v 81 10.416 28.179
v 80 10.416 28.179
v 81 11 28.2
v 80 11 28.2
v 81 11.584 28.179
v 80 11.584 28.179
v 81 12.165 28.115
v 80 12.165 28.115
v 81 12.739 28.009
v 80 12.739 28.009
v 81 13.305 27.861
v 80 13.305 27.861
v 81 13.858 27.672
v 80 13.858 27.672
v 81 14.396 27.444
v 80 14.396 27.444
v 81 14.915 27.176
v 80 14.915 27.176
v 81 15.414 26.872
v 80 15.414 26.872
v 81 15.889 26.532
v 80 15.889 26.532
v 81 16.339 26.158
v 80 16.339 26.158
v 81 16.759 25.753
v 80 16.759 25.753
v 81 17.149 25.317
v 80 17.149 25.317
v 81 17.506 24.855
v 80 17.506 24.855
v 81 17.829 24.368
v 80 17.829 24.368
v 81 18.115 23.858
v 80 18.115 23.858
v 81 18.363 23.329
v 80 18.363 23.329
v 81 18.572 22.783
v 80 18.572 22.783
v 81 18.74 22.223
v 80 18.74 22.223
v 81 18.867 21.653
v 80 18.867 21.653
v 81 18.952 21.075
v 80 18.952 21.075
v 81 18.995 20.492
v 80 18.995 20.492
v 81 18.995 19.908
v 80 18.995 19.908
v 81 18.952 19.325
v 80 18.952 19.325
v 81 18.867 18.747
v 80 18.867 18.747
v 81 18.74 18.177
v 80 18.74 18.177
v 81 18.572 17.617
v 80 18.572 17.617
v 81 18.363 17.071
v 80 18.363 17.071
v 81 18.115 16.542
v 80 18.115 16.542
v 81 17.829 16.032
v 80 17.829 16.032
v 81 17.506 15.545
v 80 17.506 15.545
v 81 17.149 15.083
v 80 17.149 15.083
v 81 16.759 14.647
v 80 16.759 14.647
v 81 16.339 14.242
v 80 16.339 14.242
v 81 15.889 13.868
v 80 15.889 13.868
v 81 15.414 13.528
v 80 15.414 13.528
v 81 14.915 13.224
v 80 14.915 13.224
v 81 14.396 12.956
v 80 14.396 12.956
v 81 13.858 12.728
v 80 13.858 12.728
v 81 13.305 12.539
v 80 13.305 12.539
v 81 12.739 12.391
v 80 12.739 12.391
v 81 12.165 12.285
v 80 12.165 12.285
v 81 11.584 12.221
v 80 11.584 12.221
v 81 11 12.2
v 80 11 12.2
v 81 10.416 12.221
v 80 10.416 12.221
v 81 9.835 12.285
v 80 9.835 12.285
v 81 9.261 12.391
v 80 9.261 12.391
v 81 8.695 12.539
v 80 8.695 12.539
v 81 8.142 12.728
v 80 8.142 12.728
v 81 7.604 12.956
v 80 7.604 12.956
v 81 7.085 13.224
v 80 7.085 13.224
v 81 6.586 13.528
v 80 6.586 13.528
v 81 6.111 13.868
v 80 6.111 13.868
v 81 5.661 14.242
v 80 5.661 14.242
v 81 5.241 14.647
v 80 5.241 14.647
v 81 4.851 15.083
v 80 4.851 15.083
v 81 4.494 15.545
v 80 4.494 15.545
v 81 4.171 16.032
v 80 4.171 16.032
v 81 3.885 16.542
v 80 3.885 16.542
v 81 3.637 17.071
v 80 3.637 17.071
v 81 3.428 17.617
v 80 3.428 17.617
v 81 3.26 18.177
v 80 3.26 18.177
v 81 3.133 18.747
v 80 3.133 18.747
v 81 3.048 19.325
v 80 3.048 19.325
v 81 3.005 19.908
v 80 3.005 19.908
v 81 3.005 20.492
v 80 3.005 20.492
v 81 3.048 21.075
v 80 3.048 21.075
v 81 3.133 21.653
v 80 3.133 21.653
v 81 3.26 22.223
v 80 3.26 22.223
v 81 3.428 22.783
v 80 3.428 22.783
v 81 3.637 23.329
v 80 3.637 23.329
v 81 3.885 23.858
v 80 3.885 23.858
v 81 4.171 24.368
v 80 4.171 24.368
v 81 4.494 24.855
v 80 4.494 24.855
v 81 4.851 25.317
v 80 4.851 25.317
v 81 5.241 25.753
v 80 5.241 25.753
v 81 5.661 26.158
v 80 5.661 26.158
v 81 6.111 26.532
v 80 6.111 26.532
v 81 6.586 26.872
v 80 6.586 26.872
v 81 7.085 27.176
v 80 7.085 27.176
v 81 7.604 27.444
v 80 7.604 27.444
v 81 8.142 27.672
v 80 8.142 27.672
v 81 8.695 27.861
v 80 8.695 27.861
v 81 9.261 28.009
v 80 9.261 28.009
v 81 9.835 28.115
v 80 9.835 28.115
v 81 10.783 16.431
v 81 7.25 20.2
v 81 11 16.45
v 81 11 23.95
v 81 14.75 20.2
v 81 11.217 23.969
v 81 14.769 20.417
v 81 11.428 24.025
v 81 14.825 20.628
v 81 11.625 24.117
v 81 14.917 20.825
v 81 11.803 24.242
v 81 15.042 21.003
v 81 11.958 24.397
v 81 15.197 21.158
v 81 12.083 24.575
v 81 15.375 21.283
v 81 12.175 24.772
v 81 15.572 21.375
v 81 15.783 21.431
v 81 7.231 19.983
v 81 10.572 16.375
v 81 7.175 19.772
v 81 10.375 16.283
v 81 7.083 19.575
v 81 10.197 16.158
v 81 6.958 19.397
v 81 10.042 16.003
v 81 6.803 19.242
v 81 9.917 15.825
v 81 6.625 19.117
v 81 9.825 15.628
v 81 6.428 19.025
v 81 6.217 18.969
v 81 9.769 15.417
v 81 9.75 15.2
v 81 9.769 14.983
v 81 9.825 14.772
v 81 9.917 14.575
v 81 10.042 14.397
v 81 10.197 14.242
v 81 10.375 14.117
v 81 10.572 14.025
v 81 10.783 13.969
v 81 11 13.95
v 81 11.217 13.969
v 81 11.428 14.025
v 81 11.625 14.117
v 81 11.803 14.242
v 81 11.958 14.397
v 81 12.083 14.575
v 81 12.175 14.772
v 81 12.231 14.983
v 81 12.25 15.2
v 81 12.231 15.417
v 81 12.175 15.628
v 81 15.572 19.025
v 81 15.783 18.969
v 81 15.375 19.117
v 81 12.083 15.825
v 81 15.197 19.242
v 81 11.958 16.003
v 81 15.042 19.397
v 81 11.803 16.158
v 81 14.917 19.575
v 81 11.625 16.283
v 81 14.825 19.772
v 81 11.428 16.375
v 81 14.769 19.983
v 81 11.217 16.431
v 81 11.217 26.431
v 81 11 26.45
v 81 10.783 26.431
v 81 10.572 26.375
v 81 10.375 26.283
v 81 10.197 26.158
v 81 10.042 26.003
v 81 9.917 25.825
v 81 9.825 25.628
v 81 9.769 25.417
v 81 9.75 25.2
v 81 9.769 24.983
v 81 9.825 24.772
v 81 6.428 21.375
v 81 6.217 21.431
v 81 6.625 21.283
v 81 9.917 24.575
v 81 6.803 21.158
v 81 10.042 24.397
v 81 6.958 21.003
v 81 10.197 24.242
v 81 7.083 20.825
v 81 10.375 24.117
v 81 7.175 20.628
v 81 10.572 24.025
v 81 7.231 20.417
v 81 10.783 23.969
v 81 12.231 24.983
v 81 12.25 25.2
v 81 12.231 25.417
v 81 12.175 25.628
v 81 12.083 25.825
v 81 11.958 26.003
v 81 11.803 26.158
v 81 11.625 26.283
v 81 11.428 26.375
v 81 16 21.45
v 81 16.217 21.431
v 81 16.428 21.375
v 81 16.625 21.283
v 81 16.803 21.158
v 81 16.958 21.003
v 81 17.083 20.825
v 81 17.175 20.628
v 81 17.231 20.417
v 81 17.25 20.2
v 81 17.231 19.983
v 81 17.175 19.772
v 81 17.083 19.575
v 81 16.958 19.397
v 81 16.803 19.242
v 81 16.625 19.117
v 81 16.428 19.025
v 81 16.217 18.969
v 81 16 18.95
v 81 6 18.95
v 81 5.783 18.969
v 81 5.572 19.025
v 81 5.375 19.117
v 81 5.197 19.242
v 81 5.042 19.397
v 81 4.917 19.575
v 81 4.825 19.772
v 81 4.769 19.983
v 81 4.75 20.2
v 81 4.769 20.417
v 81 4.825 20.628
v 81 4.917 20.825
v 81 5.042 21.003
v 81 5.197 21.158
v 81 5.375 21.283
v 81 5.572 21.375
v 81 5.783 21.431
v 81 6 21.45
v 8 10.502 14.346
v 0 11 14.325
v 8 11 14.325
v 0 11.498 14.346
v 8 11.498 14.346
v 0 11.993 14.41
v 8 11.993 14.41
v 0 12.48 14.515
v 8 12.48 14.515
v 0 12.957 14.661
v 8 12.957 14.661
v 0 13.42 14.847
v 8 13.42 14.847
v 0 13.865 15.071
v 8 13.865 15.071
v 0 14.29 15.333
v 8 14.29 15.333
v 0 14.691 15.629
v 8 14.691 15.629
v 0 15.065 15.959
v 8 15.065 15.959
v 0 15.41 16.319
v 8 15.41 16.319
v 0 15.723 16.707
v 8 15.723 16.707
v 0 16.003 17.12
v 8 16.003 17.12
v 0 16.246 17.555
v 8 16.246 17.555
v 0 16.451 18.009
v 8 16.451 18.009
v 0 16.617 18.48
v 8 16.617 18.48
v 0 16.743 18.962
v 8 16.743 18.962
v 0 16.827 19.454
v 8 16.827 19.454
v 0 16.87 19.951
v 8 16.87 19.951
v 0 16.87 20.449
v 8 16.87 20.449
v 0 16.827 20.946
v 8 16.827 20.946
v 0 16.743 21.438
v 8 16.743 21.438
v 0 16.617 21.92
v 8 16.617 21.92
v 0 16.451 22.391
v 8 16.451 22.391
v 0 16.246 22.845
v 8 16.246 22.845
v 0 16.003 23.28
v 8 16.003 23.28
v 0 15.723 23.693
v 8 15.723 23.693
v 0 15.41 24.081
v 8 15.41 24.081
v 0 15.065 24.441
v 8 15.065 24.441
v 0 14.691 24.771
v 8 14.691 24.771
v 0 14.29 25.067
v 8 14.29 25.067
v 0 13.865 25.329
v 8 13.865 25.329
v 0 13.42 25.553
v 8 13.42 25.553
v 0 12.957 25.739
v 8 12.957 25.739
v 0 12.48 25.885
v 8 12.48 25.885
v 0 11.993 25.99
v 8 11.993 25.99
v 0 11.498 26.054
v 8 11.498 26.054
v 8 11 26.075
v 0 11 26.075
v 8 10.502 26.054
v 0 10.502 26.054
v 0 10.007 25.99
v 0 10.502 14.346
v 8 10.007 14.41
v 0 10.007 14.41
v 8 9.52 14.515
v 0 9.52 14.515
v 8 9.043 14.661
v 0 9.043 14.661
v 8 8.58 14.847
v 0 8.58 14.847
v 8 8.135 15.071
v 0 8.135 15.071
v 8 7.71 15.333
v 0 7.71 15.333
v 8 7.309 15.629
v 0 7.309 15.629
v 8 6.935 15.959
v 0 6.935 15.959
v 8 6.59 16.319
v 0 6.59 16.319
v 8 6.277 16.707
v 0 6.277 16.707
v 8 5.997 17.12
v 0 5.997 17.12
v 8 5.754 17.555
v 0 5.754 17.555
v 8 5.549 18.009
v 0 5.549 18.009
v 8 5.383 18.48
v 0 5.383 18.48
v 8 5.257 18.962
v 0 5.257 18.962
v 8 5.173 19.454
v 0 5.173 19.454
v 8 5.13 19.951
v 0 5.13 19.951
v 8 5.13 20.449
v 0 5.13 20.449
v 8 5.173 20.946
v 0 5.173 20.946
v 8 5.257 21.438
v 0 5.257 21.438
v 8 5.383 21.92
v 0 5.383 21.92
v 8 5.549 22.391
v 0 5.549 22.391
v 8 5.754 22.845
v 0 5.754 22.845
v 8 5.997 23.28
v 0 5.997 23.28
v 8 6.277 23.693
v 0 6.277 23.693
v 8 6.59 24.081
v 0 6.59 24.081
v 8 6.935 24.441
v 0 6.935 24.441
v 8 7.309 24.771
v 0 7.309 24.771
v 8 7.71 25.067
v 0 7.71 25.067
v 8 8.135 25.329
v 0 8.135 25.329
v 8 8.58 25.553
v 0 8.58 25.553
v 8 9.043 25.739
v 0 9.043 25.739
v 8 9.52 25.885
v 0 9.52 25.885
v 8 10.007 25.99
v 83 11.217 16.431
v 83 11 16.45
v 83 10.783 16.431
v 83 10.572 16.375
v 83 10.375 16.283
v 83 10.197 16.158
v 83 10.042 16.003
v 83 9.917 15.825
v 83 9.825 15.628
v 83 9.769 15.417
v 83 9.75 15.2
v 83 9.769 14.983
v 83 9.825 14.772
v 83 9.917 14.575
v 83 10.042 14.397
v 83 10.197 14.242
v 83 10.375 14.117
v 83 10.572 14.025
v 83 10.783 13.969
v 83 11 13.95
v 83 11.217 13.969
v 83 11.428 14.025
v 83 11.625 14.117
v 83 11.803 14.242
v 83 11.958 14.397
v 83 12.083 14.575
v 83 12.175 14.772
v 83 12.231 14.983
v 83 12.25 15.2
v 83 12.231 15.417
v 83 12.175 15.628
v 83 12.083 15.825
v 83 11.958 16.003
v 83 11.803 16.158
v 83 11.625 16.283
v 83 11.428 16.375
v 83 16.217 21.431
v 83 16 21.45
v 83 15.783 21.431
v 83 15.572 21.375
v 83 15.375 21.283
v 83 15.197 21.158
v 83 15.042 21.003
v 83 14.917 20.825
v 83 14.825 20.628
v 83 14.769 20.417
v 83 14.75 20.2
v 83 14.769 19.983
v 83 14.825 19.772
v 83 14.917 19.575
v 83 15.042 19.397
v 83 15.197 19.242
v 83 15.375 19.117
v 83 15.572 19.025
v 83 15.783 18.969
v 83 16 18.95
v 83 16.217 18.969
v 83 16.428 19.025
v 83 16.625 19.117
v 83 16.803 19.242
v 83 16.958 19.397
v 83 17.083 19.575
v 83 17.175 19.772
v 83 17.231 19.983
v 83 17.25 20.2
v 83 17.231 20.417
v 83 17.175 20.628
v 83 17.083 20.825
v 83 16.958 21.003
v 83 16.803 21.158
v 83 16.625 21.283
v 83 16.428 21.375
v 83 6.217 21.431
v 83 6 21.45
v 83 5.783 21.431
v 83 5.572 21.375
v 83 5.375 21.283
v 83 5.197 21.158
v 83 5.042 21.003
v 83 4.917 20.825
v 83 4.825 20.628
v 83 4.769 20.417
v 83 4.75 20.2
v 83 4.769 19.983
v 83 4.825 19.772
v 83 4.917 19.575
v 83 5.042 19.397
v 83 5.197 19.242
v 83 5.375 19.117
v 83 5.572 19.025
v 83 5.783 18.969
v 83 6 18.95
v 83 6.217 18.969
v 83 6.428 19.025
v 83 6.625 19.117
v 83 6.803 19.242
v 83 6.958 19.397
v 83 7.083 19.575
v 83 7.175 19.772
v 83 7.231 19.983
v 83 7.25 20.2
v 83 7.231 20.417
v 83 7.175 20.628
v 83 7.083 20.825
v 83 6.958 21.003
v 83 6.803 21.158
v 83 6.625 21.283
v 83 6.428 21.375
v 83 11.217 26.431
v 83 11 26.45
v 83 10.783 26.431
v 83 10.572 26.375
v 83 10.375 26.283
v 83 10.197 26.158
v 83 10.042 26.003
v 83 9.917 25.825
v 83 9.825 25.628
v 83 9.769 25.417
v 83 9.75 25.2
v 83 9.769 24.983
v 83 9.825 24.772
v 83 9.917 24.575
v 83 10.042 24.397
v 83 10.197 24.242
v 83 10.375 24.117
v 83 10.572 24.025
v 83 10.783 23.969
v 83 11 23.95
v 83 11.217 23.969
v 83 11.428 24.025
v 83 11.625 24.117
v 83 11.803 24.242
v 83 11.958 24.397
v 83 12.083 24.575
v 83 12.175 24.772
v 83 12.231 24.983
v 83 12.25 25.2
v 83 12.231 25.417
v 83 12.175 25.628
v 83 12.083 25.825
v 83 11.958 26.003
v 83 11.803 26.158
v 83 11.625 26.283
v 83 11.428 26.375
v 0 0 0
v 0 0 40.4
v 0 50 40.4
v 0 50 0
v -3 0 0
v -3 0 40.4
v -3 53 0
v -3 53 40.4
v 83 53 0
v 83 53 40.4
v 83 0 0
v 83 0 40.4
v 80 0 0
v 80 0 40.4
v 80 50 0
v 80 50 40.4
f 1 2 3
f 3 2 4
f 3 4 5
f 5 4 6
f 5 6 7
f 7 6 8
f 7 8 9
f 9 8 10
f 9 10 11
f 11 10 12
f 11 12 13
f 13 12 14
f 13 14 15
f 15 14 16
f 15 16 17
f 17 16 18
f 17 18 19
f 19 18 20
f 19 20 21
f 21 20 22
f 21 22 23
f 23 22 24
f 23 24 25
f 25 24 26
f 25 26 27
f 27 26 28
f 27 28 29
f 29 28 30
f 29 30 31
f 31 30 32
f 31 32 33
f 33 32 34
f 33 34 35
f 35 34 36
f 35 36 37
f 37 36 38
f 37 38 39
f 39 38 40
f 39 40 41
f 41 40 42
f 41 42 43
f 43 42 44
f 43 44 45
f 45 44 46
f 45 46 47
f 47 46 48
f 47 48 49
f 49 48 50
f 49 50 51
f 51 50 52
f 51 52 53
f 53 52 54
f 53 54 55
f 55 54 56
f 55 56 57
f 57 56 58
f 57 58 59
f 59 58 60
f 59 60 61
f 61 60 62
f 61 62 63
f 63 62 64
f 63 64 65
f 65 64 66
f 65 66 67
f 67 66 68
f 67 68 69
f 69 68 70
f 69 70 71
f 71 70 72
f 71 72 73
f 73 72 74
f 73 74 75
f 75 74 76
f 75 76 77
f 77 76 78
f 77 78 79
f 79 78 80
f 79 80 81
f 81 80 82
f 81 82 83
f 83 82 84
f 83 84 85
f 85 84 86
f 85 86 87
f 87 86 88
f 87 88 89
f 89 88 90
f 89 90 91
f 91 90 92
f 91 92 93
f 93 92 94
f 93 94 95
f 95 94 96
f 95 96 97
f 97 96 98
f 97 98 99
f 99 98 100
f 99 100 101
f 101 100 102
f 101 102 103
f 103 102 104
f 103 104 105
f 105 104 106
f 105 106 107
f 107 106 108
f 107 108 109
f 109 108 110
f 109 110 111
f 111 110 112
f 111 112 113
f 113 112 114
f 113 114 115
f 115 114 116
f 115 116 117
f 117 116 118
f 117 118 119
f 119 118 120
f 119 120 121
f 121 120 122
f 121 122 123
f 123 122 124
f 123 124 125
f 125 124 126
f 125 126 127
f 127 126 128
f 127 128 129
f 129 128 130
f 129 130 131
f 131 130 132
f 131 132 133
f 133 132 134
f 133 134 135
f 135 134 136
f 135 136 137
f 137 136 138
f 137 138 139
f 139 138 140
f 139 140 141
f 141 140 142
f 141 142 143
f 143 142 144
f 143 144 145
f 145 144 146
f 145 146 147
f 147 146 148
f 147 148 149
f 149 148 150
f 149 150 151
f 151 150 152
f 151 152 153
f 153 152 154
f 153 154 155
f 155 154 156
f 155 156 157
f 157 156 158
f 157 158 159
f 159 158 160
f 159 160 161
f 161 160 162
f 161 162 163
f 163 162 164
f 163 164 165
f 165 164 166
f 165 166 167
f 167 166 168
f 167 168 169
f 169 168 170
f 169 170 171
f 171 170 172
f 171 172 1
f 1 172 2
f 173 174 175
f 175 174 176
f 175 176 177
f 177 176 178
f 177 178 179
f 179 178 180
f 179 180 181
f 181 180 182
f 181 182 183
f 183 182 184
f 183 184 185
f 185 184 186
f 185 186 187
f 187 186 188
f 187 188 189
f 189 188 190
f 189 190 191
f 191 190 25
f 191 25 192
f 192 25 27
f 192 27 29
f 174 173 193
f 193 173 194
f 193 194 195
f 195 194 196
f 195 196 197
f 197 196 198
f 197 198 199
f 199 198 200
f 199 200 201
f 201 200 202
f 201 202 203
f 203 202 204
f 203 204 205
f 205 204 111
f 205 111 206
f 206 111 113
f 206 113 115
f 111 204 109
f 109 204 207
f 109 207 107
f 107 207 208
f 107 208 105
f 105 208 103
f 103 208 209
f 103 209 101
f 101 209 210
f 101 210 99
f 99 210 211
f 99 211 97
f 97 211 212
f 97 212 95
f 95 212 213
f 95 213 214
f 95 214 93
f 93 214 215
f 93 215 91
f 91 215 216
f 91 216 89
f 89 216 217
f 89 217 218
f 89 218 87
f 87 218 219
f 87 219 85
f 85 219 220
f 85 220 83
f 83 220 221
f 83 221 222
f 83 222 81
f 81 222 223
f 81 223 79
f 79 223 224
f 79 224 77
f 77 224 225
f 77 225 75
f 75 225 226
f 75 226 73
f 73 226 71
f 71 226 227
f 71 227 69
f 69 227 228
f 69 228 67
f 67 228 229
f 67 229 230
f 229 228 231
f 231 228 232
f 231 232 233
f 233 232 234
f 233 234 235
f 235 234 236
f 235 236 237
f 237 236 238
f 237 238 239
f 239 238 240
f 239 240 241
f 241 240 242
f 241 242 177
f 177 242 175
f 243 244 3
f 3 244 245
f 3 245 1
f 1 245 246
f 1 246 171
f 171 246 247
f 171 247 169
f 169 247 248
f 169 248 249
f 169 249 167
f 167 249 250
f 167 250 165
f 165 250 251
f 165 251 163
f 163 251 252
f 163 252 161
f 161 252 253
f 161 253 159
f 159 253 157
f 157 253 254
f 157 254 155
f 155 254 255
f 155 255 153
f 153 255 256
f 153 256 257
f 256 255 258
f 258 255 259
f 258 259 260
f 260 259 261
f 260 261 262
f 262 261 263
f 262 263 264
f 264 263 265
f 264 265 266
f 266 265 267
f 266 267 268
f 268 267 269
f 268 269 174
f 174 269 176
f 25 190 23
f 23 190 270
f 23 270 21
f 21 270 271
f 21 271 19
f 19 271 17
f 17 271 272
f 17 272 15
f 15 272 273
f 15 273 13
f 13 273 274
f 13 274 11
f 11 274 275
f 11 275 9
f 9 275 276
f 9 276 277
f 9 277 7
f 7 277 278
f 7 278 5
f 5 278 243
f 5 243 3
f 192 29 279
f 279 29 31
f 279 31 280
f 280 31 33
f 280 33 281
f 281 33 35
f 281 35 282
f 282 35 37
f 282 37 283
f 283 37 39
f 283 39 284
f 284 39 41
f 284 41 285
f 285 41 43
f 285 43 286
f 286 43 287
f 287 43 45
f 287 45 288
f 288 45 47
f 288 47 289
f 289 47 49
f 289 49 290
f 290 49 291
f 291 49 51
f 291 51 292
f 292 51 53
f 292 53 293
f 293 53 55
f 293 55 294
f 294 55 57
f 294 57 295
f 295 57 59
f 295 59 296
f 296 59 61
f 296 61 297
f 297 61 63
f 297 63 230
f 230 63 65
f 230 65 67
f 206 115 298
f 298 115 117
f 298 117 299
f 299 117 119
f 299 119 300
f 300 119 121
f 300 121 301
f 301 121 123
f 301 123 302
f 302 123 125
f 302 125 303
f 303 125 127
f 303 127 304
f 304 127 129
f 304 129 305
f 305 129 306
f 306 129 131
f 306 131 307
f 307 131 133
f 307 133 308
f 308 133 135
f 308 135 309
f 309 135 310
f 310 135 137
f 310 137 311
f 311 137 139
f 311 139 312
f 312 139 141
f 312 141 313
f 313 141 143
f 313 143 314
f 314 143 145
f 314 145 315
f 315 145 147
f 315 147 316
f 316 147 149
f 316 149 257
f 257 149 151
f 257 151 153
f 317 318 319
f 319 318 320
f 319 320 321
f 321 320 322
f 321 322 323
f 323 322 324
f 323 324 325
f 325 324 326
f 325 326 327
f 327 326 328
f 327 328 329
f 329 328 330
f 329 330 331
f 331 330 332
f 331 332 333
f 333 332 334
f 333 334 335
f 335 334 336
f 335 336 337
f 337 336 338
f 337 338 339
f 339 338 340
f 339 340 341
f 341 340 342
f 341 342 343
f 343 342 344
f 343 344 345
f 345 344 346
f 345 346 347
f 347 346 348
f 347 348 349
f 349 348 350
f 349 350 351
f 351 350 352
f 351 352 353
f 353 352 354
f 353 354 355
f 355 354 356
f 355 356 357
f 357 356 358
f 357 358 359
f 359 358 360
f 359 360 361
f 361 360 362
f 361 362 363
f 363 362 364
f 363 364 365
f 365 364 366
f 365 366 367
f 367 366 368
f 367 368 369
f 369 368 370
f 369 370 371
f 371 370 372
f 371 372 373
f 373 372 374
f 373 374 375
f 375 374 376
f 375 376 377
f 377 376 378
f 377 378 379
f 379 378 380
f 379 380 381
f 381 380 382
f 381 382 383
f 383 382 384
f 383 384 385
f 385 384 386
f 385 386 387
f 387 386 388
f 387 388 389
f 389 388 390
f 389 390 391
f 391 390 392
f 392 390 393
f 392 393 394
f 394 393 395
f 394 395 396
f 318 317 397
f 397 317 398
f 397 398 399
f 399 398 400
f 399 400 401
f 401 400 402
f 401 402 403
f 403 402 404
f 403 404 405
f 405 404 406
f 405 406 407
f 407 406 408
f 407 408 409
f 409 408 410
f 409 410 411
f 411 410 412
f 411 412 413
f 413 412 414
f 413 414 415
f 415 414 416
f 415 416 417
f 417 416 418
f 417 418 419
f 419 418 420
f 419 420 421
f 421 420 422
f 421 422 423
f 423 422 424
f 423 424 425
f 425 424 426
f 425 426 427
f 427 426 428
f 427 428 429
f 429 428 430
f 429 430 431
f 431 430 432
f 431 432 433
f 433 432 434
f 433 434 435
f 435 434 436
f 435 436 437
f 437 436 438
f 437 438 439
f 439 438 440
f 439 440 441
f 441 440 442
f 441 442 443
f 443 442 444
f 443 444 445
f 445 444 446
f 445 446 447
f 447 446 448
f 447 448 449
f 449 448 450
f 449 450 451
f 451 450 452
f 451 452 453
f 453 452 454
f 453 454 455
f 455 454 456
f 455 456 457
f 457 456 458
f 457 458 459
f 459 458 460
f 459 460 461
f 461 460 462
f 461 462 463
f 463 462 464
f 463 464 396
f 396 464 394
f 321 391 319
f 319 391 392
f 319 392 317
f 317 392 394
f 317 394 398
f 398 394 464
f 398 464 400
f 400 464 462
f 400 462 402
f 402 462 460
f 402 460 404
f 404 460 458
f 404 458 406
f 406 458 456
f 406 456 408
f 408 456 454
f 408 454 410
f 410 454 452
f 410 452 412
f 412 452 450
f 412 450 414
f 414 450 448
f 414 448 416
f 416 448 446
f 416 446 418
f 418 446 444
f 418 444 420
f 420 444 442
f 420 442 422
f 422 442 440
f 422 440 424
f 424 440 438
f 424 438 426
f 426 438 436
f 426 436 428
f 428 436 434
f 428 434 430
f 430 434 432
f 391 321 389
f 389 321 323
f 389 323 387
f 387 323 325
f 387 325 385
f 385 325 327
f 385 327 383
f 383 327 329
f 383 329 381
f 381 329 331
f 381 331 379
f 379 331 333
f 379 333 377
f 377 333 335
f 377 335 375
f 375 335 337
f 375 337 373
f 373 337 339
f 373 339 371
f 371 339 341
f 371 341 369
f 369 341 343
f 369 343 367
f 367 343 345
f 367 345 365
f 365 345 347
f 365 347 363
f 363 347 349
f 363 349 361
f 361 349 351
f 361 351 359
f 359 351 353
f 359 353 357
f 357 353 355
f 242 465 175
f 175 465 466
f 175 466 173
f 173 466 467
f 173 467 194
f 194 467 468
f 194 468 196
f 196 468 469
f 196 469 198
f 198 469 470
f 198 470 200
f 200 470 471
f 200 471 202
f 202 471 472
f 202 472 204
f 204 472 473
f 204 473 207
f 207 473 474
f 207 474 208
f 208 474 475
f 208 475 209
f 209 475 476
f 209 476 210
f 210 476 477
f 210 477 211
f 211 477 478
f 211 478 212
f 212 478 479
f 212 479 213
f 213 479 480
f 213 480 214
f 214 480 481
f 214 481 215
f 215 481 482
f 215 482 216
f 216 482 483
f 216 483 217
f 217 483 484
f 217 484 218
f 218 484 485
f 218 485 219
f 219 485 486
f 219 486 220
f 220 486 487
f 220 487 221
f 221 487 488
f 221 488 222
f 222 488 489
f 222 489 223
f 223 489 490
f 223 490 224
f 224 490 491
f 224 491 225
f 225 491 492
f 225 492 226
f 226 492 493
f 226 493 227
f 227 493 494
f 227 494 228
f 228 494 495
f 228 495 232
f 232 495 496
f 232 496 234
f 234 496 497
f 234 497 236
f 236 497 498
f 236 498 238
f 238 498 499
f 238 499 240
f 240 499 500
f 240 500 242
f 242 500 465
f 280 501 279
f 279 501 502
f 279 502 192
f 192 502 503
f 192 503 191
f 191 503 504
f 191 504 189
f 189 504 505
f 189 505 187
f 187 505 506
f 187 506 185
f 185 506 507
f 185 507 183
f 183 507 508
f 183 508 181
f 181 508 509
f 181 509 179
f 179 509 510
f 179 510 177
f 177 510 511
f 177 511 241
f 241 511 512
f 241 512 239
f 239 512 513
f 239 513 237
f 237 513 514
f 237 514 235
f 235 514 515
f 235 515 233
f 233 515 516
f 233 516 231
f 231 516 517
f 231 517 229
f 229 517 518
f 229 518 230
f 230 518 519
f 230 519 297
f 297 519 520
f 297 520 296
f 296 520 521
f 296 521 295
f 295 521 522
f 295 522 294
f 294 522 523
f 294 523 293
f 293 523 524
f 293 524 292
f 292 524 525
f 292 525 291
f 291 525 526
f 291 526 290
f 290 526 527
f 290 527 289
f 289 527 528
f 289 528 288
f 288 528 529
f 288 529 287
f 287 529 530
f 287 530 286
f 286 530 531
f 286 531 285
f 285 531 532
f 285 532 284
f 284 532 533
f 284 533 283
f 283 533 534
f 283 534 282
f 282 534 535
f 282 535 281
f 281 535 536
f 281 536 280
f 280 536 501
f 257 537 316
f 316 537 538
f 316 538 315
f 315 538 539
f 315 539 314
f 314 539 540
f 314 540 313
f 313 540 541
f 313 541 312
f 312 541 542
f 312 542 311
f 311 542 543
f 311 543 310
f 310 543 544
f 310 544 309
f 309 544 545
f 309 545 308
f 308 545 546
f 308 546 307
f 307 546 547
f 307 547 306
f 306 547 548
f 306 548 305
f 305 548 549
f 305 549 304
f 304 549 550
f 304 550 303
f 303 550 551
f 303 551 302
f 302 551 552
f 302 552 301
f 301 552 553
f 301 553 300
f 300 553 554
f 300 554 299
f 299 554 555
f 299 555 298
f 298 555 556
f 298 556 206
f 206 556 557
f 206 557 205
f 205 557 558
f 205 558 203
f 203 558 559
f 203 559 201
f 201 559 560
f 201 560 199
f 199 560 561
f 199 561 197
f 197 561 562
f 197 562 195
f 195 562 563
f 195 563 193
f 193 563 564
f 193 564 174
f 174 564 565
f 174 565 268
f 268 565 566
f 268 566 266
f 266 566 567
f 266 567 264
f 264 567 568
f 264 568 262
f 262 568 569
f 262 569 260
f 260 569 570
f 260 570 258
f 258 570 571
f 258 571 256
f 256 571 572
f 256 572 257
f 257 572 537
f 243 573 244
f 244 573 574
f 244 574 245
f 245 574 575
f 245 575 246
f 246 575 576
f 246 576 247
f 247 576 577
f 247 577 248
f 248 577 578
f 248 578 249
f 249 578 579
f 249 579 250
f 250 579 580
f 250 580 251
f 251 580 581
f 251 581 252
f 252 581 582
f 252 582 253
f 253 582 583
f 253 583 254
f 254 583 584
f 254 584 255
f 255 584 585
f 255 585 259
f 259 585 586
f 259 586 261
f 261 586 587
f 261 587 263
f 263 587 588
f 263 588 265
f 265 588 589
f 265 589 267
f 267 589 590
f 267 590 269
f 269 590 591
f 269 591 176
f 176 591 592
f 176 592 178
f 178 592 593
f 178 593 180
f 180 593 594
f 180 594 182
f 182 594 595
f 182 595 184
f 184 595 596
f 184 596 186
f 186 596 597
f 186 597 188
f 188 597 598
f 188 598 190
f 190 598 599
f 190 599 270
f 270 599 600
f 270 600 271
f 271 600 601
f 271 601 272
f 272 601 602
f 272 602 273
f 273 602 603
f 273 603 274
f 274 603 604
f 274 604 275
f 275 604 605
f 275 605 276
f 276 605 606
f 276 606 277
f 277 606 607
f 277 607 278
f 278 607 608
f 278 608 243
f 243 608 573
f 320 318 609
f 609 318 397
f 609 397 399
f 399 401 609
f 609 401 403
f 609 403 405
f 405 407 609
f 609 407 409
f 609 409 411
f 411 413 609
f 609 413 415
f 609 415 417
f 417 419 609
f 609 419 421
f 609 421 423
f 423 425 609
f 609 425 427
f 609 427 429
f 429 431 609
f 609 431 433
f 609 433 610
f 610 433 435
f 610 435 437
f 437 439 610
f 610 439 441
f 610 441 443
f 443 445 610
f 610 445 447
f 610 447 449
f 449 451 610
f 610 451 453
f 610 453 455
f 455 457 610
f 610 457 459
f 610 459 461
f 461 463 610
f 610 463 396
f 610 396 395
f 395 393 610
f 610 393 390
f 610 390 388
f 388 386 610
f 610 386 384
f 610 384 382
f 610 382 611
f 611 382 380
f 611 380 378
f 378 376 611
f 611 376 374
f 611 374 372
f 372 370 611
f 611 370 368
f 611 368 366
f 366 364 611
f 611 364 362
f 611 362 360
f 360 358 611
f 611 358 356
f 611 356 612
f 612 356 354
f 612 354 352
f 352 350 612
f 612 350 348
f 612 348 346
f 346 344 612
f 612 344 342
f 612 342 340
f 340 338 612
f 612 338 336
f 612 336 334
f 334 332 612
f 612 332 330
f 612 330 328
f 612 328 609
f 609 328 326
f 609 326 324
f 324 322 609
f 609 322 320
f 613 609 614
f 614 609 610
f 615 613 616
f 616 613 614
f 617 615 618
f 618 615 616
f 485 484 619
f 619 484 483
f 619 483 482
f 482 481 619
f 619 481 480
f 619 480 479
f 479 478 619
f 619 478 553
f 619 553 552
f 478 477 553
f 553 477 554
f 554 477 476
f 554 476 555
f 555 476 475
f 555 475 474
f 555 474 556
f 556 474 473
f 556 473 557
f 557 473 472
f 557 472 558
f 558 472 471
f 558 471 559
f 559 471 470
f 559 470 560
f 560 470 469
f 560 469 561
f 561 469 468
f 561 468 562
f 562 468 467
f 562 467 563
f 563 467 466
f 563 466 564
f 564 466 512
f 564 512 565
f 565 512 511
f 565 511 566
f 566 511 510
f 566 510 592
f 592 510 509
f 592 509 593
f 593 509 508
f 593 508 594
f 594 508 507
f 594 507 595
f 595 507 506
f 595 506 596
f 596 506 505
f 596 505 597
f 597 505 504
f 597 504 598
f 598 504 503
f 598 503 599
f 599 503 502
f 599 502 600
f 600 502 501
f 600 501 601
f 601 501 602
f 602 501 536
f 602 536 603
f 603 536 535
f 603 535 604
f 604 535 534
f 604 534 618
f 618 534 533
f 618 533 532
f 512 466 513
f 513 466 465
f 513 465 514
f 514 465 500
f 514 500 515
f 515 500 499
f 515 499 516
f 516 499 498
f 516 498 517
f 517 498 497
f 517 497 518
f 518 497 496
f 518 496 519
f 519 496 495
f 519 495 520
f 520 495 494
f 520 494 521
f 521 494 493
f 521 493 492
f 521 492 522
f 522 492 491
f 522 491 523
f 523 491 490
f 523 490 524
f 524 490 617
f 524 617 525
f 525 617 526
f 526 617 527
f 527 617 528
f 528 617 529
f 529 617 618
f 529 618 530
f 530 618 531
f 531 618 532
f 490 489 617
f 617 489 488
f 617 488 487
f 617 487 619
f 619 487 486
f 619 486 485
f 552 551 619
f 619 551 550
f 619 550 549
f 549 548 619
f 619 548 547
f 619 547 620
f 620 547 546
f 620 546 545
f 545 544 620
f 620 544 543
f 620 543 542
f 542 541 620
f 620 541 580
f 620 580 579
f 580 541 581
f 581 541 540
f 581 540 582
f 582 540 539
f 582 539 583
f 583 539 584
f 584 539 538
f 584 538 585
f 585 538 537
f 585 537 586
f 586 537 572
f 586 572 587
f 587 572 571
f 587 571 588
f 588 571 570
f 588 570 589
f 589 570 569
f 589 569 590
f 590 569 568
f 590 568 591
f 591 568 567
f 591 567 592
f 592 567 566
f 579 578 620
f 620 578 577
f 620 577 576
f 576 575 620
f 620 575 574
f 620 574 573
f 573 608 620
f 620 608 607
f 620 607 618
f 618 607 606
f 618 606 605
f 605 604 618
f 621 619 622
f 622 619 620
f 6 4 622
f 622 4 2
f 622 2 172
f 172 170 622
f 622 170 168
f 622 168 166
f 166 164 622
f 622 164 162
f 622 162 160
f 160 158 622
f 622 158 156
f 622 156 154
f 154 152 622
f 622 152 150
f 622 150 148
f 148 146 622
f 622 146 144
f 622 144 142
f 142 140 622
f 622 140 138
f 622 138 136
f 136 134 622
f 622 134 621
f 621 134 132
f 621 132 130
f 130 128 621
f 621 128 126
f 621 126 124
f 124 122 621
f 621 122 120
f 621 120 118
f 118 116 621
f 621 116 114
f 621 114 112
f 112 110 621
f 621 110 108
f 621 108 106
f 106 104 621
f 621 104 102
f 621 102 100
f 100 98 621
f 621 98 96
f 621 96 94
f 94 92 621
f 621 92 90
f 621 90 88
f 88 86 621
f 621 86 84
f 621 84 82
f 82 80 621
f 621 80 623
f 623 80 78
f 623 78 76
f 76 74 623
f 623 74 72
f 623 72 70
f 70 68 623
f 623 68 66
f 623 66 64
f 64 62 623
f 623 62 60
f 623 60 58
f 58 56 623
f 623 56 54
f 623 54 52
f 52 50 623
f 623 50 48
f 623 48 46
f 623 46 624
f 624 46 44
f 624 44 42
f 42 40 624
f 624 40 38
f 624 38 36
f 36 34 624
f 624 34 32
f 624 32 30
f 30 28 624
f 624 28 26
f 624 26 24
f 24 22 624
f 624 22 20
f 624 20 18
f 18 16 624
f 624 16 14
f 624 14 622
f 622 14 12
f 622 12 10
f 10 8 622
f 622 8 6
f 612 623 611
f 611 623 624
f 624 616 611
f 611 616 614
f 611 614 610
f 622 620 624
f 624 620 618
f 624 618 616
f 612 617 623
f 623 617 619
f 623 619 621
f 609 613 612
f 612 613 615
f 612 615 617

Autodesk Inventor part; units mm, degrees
ref_plane "YZ Plane" through (0, 0, 0) normal (1, 0, 0) x (0, 1, 0)
ref_plane "XZ Plane" through (0, 0, 0) normal (0, 1, 0) x (-1, 0, 0)
ref_plane "XY Plane" through (0, 0, 0) normal (0, 0, 1) x (1, 0, 0)
sketch "Sketch1" plane through (0, 0, 0) normal (0, 0, 1) x (1, 0, 0)
  line L0 (0, 0) -> (0, 50)
  line L1 (0, 50) -> (80, 50)
  line L2 (80, 50) -> (80, 0)
  line L3 (80, 0) -> (83, 0)
  line L4 (83, 0) -> (83, 53)
  line L5 (83, 53) -> (-3, 53)
  line L6 (-3, 53) -> (-3, 0)
  line L7 (-3, 0) -> (0, 0)
  dimension "d0" = 50
  dimension "d1" = 80
  dimension "d2" = 3
  dimension "d3" = 53
  dimension "d4" = 86
extrude "Extrusion1" add sketch "Sketch1" along normal blind 40.4
sketch "Sketch2" plane through (83, 0, 0) normal (1, 0, 0) x (0, 0, -1)
  line L0 (0, 0) -> (-40.4, 0) projected
  circle A0 centre (-20.2, 16) radius 1.25
  circle A1 centre (-25.2, 11) radius 1.25
  circle A2 centre (-20.2, 6) radius 1.25
  circle A3 centre (-15.2, 11) radius 1.25
  point P0 (-20.2, 11)
  dimension "d9" = 2.5
  dimension "d12" = 360
extrude "Extrusion2" cut sketch "Sketch2" against normal up to surface (3 mm away)
sketch "Sketch3" plane through (0, 0, 0) normal (1, 0, 0) x (0, 0, -1)
  line L0 (0, 0) -> (-40.4, 0) projected
  circle A0 centre (-20.2, 11) radius 5.875
  dimension "d17" = 11.75
extrude "Extrusion3" add sketch "Sketch3" along normal blind 8
sketch "Sketch4" plane through (80, 0, 0) normal (-1, 0, 0) x (0, 0, 1)
  circle A0 centre (20.2, 6) radius 1.25 projected
  circle A1 centre (20.2, 16) radius 1.25 projected
  circle A2 centre (20.2, 11) radius 8
  point P0 (0, 0)
  dimension "d20" = 16
extrude "Extrusion4" cut sketch "Sketch4" against normal blind 1
properties part number "Tilt_Bracket"
